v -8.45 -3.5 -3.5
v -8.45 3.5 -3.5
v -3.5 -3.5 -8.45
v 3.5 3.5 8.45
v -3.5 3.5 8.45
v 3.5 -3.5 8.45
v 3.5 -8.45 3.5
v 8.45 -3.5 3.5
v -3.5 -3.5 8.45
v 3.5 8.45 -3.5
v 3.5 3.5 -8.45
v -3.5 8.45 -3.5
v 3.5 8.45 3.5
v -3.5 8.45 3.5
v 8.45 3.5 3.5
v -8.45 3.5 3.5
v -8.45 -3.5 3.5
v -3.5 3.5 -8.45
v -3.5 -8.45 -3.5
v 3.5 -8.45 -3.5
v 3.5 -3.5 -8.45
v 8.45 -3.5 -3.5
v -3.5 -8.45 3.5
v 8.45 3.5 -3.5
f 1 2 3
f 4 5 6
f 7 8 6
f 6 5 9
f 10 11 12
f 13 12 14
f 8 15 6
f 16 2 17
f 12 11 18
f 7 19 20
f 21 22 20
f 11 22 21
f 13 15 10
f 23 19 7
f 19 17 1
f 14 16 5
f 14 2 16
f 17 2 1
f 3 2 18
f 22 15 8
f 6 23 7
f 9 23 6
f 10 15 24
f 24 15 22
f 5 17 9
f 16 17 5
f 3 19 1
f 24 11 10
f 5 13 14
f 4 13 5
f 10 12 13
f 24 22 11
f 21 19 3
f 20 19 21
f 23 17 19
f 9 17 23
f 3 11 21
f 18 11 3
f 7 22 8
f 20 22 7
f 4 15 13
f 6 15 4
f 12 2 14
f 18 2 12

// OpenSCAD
e =  5 + 2.0;        // Edge length of a spike + tolerance for glueing
c = e*(1 + sqrt(2)); // Largest coordinate for Rhombicuboctahedron

hull() 
{
  cube([e, e, c], center=true);
  cube([e, c, e], center=true);
  cube([c, e, e], center=true);
}
